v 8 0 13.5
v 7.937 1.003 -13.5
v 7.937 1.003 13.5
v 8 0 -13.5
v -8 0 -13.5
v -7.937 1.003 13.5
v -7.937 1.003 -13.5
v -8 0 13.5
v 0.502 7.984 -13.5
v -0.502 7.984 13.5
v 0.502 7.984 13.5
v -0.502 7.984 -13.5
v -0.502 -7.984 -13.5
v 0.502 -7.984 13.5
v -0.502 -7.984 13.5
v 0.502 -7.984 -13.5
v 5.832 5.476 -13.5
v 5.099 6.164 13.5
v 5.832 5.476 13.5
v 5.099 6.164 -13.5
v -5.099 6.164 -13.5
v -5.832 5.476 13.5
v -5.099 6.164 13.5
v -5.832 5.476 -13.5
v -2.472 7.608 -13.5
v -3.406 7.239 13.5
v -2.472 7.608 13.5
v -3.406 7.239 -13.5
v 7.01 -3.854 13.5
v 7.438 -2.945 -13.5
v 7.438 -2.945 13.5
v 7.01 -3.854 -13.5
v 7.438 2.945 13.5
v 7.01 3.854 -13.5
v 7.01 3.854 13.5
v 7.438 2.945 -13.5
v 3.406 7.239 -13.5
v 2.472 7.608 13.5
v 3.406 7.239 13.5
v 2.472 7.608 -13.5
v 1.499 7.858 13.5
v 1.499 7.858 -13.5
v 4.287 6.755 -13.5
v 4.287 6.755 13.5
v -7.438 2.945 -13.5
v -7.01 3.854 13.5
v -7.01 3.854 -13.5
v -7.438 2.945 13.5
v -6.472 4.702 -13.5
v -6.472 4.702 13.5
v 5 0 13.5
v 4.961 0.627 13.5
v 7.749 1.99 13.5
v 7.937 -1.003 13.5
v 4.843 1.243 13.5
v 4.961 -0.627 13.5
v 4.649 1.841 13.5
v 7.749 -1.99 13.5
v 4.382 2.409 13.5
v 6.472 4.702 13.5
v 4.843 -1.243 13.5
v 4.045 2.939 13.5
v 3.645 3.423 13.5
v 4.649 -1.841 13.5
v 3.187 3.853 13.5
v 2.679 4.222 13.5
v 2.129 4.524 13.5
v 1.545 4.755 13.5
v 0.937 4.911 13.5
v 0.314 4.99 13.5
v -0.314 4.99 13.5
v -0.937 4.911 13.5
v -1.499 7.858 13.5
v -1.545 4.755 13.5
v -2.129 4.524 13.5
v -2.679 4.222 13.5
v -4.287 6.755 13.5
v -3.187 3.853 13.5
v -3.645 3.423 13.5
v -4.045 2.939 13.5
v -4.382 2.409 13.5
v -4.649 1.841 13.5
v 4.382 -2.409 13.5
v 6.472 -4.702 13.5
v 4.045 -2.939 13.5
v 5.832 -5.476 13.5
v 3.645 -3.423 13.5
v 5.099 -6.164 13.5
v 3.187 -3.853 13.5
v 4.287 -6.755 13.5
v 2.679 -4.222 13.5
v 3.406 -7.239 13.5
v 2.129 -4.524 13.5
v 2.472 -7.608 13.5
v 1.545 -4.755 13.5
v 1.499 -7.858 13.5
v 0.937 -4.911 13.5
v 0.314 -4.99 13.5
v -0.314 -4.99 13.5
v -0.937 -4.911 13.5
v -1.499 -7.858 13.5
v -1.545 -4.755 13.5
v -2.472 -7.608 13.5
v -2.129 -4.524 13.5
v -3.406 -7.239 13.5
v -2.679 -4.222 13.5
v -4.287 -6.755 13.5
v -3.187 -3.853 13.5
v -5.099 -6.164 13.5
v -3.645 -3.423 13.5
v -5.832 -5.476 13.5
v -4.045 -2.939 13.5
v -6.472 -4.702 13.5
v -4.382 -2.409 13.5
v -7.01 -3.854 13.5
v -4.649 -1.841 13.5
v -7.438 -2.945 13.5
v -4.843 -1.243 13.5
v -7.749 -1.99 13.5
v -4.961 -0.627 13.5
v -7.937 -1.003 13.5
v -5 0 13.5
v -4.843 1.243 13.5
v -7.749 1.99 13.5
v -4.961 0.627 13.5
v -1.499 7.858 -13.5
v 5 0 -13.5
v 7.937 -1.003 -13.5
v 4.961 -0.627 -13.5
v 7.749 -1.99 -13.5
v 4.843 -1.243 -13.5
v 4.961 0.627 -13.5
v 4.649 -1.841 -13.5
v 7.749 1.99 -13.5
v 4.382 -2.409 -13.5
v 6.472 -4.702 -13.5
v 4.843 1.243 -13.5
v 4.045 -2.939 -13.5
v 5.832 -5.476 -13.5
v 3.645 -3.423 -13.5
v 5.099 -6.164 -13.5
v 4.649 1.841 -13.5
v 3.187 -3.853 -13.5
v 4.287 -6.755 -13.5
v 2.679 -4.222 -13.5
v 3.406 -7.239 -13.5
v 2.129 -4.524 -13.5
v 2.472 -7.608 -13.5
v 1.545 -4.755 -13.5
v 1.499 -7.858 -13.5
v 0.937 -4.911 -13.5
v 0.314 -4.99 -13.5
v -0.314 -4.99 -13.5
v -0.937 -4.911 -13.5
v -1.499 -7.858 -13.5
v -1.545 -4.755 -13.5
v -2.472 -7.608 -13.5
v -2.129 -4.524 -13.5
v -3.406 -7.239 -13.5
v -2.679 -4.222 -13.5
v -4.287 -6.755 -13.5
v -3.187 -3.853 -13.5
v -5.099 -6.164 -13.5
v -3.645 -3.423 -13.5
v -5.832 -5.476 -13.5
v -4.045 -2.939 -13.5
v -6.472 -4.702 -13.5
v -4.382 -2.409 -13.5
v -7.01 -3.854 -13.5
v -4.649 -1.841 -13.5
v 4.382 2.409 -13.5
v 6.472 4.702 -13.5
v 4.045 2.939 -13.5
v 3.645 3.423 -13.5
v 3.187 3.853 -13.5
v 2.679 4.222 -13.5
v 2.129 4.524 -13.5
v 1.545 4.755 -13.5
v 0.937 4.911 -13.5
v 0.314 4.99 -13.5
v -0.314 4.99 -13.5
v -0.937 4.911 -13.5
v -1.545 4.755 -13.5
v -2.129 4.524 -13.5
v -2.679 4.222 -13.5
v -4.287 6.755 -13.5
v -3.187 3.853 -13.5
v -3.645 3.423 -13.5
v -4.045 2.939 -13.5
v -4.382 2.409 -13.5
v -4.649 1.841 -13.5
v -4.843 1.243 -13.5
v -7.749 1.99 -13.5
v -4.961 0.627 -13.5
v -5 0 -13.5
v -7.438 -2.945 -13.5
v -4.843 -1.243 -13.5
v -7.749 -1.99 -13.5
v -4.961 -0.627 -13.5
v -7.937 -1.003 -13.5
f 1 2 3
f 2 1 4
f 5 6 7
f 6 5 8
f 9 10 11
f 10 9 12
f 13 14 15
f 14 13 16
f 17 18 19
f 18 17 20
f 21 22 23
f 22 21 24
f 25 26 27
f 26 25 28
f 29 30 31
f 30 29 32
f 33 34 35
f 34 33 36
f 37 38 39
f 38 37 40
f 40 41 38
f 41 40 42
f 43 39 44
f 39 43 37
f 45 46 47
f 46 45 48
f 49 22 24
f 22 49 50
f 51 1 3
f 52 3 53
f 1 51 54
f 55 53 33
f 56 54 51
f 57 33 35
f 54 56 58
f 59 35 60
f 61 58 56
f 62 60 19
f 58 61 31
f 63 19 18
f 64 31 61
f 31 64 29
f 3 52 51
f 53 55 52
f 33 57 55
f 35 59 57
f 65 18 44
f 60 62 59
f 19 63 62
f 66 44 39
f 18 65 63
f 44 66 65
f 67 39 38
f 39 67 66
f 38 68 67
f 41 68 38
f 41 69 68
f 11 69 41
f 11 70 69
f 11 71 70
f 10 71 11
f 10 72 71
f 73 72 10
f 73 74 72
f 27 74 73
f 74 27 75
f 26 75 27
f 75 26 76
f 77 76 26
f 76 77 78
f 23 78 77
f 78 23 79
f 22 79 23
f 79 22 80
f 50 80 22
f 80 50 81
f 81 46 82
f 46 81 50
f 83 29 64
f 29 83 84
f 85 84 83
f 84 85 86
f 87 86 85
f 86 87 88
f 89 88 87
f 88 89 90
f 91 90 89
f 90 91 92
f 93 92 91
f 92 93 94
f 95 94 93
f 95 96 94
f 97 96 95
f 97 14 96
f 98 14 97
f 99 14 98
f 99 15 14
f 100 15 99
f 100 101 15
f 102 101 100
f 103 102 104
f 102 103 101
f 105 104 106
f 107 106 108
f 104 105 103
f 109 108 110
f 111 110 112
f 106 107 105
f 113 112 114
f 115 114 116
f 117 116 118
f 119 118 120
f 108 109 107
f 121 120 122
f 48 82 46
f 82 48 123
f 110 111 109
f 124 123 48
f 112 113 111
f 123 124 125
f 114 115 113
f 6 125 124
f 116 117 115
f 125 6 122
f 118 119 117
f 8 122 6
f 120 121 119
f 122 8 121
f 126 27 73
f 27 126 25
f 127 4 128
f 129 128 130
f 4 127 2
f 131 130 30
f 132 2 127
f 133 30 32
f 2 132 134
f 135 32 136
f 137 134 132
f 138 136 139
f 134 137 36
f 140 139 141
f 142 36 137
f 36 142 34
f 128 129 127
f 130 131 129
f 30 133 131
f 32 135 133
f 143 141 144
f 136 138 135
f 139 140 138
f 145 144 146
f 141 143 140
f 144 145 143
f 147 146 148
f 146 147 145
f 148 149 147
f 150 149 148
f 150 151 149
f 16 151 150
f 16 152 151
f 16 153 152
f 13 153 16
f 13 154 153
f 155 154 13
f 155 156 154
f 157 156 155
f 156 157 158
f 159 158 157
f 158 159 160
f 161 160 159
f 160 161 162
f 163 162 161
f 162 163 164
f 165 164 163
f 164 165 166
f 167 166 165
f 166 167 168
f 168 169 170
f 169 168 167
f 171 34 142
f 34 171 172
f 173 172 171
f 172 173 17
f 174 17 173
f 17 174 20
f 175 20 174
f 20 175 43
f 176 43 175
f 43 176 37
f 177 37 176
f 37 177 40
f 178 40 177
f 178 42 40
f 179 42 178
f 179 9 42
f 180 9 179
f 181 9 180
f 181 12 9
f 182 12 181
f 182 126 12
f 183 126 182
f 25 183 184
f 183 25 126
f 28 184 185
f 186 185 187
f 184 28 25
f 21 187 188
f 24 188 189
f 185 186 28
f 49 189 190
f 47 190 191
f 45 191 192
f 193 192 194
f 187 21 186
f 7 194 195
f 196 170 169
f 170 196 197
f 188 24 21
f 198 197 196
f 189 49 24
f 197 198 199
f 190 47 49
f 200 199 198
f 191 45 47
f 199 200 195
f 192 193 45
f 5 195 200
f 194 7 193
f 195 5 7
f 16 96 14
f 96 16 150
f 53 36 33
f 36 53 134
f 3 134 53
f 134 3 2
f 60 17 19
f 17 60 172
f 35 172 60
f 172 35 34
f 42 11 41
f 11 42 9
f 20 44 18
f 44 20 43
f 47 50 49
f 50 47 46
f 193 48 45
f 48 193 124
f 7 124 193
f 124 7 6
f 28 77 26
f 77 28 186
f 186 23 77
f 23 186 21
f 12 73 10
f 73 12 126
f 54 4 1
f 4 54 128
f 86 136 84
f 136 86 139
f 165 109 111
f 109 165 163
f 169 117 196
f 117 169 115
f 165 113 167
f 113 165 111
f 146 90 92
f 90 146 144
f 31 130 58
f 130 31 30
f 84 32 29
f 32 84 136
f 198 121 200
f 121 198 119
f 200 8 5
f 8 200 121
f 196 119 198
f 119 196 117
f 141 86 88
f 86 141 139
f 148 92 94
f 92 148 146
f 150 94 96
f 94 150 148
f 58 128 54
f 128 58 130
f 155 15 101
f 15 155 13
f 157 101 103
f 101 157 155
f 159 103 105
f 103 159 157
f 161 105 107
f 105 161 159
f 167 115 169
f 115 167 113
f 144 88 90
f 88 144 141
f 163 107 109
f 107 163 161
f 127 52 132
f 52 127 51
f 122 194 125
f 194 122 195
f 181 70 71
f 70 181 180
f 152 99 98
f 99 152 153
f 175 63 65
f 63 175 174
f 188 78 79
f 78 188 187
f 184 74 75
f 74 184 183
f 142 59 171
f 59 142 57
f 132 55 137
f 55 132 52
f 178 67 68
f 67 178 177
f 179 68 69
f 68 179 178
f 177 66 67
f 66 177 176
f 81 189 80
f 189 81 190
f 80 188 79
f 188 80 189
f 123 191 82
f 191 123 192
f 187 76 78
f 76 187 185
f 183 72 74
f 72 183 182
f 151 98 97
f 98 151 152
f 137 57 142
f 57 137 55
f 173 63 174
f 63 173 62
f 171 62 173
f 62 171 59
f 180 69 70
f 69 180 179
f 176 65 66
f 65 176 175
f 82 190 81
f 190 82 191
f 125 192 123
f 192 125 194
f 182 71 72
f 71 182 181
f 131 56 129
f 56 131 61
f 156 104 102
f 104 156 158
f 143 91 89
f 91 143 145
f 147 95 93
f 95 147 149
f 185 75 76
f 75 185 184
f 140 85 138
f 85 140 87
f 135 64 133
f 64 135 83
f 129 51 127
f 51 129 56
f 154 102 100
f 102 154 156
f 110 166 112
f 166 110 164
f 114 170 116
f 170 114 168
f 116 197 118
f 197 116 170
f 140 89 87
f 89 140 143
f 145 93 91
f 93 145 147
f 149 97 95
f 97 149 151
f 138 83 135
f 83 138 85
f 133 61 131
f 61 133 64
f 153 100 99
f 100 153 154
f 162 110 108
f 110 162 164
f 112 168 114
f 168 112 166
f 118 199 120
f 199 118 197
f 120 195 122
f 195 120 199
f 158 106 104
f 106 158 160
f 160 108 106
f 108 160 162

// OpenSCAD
$fn = 50;


difference() {
	union() {
		translate(v = [0, 0, -13.5000000000]) {
			cylinder(h = 27, r = 8.0000000000);
		}
	}
	union() {
		translate(v = [0, 0, -100.0000000000]) {
			cylinder(h = 200, r = 5.0000000000);
		}
	}
}
